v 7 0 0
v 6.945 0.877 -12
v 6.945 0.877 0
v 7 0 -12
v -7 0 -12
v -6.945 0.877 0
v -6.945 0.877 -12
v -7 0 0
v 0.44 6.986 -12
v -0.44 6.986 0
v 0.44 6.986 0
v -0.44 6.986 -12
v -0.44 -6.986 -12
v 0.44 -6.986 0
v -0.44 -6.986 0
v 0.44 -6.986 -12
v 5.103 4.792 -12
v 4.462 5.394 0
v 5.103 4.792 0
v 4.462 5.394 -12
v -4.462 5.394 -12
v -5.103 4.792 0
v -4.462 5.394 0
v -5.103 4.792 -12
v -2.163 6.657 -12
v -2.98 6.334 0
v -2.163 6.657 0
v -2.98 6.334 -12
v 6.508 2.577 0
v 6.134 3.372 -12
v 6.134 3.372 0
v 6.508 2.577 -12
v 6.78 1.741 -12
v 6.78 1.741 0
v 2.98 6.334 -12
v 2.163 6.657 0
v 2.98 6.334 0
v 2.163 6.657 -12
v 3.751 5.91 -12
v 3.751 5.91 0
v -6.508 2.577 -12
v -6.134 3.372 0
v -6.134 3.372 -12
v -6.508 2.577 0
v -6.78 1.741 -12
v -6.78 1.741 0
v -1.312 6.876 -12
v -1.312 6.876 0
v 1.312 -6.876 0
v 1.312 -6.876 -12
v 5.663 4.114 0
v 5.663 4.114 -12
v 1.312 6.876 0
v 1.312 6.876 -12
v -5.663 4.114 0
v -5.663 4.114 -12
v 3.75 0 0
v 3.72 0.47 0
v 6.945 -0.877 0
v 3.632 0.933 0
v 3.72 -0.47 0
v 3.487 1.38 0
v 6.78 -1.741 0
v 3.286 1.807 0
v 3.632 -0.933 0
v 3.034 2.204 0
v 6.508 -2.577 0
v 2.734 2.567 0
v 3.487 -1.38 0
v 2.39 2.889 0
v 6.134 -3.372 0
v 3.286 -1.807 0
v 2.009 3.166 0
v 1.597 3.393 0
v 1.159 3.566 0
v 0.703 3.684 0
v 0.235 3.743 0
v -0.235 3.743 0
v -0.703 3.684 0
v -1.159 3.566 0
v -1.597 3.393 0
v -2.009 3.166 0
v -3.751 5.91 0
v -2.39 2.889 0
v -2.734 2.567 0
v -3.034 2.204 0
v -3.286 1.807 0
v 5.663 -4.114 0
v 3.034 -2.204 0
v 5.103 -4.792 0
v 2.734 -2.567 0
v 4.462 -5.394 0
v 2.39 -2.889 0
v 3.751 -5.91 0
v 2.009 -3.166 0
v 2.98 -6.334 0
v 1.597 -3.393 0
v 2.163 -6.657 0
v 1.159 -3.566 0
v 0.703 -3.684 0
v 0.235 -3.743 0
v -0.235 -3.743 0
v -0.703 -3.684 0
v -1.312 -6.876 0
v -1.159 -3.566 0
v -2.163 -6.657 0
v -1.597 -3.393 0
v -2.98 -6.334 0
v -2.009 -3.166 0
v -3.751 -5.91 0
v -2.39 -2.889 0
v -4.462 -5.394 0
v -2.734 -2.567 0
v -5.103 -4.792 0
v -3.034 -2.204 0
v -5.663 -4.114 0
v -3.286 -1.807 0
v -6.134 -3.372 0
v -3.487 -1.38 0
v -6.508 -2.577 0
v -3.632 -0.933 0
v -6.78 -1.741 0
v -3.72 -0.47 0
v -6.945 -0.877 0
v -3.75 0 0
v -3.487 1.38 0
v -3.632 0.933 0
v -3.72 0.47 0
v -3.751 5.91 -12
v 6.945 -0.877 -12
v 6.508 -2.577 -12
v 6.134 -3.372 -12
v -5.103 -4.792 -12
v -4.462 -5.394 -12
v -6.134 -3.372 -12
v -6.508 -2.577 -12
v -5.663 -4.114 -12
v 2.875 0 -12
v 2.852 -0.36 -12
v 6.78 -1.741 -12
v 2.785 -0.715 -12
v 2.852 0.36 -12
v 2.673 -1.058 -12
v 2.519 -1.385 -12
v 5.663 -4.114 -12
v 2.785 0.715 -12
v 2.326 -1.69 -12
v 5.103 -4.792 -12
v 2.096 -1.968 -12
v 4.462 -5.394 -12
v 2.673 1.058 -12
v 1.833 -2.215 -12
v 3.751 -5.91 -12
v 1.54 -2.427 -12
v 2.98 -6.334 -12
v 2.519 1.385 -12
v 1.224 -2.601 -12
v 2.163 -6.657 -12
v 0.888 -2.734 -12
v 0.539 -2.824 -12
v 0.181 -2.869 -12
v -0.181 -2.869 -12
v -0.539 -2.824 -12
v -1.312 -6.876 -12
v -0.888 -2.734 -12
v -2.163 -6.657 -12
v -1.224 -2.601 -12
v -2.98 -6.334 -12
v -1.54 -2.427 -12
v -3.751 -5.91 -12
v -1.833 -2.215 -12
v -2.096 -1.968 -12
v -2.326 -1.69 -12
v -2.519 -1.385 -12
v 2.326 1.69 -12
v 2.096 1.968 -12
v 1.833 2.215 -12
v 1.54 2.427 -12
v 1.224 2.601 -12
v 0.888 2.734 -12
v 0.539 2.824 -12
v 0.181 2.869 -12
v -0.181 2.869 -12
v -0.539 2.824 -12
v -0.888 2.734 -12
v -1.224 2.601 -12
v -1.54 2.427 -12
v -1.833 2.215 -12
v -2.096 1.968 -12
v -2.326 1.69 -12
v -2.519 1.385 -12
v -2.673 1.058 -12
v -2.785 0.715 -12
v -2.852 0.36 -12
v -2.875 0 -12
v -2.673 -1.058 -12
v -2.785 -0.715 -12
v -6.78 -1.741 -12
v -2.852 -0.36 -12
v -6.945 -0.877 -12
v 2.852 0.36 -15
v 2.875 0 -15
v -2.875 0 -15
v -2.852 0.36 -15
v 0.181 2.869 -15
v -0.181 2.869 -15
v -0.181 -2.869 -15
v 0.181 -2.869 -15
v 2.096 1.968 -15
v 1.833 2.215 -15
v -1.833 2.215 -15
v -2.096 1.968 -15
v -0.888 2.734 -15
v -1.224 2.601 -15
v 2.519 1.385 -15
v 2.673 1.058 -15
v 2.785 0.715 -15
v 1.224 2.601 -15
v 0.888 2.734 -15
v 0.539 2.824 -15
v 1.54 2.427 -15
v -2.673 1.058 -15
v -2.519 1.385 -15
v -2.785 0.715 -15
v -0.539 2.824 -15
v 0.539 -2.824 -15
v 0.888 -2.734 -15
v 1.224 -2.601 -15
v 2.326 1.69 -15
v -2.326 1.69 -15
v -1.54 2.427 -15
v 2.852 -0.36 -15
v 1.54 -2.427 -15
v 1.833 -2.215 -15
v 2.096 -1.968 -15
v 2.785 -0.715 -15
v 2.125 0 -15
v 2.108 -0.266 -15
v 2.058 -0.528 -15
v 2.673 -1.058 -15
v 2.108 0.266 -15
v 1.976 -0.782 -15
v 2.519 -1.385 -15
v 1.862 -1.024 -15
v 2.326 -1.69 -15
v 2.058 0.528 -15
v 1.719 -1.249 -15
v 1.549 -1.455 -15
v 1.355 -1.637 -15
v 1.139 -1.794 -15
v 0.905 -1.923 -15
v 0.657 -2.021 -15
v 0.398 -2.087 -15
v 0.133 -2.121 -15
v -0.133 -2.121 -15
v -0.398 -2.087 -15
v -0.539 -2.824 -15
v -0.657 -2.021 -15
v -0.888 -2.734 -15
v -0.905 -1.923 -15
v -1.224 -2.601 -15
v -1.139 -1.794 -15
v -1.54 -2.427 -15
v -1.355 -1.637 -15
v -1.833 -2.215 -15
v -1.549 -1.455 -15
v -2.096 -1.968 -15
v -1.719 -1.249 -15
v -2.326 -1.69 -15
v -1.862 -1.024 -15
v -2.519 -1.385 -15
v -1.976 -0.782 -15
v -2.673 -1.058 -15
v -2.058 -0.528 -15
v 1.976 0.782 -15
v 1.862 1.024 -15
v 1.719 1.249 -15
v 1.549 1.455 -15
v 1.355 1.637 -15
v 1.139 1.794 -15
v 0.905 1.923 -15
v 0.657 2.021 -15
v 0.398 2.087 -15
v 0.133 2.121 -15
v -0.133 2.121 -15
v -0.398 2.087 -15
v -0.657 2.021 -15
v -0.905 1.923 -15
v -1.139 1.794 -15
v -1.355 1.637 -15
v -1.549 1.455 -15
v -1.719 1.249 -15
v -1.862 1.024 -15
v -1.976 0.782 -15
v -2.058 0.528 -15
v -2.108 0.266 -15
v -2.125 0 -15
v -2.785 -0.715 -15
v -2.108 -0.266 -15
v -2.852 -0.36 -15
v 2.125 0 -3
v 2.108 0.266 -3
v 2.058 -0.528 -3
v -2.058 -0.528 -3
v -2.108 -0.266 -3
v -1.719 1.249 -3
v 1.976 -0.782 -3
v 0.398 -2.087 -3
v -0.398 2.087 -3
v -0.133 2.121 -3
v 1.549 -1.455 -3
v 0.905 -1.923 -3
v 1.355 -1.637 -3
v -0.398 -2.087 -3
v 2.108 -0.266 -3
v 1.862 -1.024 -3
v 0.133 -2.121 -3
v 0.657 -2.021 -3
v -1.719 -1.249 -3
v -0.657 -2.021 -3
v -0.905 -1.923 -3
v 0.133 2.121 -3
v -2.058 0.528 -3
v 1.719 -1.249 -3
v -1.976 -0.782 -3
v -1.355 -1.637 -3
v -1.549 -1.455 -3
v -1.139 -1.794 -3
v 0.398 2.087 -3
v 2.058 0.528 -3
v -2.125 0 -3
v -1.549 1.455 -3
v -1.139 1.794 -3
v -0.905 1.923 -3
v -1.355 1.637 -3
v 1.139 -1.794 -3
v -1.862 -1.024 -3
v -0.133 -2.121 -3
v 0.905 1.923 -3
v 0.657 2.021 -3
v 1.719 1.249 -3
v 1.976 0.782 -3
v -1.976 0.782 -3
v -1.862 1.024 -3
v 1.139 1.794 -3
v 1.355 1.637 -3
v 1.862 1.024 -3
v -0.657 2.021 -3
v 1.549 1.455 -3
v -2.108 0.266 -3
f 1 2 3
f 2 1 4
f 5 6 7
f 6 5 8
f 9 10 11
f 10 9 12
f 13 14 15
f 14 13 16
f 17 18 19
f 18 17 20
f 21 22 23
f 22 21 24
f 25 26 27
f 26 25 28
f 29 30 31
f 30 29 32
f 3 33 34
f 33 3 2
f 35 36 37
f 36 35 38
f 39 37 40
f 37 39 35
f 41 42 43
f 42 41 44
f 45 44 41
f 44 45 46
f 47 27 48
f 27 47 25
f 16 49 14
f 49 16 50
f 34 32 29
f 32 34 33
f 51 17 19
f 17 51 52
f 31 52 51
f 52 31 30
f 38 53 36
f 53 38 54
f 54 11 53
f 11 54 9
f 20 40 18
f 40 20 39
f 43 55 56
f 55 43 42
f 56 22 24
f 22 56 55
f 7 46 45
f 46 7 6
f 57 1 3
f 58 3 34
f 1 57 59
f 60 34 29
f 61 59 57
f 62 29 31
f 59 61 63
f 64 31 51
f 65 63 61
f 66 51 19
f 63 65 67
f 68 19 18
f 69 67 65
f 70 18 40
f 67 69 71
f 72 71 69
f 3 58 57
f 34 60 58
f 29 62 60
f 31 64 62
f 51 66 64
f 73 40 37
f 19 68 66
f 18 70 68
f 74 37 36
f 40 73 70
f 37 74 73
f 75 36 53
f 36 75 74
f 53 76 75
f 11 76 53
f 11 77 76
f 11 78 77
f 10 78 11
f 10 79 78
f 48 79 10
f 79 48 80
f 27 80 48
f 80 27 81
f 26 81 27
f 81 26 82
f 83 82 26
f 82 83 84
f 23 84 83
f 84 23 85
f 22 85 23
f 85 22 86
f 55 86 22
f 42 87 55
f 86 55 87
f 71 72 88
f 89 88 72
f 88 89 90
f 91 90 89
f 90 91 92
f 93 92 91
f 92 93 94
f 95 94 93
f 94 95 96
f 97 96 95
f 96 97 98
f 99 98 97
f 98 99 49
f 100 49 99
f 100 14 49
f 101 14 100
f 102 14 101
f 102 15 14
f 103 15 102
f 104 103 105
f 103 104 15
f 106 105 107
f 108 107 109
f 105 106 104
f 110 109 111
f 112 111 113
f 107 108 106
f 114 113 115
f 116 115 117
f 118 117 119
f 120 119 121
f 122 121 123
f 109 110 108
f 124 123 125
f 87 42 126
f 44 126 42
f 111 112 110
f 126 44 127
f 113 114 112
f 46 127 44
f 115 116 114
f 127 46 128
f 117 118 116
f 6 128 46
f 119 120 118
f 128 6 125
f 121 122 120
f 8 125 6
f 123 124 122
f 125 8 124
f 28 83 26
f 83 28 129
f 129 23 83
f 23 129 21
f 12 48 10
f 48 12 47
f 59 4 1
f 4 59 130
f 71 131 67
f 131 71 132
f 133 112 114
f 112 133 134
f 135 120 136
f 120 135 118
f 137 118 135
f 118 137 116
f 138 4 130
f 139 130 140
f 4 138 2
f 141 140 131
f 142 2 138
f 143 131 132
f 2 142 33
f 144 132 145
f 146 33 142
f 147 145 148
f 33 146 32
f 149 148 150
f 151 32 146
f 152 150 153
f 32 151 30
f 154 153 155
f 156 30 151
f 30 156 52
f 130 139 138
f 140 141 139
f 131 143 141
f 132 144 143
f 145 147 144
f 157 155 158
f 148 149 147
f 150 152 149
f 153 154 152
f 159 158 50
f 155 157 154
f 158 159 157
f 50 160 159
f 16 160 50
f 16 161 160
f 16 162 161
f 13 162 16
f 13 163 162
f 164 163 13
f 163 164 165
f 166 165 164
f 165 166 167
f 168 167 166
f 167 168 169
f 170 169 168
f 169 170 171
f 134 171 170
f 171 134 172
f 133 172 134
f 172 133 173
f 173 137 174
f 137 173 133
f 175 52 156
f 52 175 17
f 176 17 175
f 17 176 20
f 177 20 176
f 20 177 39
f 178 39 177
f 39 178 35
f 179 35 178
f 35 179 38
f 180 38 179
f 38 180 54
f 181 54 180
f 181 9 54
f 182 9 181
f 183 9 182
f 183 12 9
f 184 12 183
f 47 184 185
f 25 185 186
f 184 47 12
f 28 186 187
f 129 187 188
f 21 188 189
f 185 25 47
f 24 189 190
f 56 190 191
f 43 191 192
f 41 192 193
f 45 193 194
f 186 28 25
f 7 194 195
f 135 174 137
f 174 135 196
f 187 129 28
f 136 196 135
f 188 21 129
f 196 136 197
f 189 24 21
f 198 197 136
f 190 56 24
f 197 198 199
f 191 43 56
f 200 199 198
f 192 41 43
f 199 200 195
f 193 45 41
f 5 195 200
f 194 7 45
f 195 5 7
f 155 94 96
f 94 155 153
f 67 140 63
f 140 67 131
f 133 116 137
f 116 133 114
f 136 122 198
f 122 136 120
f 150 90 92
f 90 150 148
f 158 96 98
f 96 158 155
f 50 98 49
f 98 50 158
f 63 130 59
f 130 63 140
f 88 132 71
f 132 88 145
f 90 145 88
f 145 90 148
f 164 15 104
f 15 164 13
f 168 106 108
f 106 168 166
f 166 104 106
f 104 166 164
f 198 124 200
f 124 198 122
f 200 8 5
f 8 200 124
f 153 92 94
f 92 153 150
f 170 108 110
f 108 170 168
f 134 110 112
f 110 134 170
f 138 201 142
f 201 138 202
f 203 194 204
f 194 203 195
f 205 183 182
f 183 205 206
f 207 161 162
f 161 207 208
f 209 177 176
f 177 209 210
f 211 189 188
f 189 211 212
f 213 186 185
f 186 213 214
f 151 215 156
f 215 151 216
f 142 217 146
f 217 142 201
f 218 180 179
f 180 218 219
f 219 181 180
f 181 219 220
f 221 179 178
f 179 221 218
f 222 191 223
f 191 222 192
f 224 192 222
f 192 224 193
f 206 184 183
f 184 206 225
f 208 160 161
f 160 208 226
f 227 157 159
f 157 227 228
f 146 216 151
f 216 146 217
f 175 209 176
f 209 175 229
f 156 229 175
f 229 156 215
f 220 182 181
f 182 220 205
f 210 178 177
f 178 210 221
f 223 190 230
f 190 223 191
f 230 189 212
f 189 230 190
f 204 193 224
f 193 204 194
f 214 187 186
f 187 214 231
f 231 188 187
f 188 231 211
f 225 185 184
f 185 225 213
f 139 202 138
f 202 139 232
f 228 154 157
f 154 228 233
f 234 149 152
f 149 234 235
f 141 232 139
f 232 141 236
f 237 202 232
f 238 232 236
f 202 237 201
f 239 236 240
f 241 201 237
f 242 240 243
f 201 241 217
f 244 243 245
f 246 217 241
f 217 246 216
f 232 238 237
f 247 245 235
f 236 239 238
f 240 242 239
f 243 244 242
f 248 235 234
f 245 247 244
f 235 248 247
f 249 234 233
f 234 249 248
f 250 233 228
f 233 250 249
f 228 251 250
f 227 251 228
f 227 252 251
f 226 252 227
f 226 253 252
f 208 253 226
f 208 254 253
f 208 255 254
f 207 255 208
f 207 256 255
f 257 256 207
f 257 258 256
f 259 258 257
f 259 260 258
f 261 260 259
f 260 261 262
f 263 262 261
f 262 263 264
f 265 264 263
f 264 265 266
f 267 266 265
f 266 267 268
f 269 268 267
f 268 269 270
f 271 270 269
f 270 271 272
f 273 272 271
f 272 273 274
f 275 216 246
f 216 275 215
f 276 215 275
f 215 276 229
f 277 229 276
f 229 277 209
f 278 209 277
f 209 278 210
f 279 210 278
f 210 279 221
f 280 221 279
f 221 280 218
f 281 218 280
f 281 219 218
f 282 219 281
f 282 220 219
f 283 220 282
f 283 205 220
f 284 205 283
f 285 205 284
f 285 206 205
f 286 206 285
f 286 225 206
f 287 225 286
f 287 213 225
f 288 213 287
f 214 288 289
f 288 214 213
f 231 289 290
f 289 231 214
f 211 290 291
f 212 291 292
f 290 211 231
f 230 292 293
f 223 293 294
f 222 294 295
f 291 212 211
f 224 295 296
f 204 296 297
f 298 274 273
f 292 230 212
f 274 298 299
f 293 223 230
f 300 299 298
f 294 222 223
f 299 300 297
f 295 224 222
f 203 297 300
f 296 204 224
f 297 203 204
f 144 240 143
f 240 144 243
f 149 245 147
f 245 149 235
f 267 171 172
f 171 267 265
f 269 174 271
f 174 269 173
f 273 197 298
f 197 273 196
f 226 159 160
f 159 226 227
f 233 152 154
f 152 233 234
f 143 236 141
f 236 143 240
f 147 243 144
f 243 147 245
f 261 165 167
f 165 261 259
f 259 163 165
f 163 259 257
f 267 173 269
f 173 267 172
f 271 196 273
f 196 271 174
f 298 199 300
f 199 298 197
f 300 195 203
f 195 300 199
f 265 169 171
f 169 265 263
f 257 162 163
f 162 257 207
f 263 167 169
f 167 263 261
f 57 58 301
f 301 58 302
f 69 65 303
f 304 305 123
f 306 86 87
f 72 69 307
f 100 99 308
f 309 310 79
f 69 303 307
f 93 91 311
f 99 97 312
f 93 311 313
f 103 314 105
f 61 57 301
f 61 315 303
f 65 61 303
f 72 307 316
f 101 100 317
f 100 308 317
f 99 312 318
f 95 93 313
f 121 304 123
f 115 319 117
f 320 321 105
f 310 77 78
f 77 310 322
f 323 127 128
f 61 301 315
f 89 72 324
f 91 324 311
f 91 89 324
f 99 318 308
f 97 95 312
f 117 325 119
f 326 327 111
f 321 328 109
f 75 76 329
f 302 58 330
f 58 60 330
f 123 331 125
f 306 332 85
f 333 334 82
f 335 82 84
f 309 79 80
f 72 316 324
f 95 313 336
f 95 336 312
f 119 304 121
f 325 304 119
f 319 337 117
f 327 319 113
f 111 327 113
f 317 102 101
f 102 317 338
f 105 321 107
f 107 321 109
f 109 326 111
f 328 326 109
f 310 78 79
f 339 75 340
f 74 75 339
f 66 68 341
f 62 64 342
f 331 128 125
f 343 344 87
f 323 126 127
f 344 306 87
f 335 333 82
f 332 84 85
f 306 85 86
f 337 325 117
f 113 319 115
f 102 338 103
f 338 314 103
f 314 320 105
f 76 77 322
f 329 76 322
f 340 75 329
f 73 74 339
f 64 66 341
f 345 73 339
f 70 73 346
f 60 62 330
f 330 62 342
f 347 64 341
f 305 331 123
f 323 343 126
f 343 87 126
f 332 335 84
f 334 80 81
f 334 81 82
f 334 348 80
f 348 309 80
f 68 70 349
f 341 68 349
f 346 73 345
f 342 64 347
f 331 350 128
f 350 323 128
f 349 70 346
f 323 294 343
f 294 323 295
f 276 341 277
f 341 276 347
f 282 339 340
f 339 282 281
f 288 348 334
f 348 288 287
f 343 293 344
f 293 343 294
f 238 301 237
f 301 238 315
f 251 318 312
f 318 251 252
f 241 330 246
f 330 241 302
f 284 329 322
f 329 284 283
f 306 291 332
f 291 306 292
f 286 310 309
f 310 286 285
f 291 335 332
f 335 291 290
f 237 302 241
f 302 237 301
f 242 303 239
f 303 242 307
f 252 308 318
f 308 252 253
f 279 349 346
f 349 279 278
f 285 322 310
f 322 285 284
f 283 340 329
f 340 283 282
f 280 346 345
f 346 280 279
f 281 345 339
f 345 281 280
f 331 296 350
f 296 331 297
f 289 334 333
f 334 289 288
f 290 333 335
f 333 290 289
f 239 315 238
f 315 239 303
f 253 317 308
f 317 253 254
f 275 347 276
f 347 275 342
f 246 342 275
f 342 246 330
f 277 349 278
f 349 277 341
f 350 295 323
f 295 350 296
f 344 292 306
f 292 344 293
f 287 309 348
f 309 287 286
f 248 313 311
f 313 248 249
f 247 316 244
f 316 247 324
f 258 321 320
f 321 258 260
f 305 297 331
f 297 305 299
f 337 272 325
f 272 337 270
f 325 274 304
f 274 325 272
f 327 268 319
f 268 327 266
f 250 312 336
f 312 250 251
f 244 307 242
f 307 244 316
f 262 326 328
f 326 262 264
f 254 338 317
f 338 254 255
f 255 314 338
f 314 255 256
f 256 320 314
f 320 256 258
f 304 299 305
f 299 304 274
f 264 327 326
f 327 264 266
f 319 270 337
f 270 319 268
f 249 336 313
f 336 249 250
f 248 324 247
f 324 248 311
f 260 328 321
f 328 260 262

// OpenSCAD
$fn = 50;


difference() {
	union() {
		translate(v = [0, 0, -12.0000000000]) {
			cylinder(h = 12, r = 7.0000000000);
		}
		#translate(v = [0, 0, -15.0000000000]) {
			cylinder(h = 15, r = 2.8750000000);
		}
	}
	union() {
		translate(v = [0, 0, 0]) {
			rotate(a = [0, 0, 0]) {
				difference() {
					union() {
						translate(v = [0, 0, -15.0000000000]) {
							cylinder(h = 15, r = 2.0000000000);
						}
						translate(v = [0, 0, -3]) {
							cylinder(h = 3, r1 = 2.1250000000, r2 = 3.7500000000);
						}
						translate(v = [0, 0, -15.0000000000]) {
							cylinder(h = 15, r = 2.1250000000);
						}
						translate(v = [0, 0, -15.0000000000]) {
							cylinder(h = 15, r = 2.0000000000);
						}
					}
					union();
				}
			}
		}
	}
}
